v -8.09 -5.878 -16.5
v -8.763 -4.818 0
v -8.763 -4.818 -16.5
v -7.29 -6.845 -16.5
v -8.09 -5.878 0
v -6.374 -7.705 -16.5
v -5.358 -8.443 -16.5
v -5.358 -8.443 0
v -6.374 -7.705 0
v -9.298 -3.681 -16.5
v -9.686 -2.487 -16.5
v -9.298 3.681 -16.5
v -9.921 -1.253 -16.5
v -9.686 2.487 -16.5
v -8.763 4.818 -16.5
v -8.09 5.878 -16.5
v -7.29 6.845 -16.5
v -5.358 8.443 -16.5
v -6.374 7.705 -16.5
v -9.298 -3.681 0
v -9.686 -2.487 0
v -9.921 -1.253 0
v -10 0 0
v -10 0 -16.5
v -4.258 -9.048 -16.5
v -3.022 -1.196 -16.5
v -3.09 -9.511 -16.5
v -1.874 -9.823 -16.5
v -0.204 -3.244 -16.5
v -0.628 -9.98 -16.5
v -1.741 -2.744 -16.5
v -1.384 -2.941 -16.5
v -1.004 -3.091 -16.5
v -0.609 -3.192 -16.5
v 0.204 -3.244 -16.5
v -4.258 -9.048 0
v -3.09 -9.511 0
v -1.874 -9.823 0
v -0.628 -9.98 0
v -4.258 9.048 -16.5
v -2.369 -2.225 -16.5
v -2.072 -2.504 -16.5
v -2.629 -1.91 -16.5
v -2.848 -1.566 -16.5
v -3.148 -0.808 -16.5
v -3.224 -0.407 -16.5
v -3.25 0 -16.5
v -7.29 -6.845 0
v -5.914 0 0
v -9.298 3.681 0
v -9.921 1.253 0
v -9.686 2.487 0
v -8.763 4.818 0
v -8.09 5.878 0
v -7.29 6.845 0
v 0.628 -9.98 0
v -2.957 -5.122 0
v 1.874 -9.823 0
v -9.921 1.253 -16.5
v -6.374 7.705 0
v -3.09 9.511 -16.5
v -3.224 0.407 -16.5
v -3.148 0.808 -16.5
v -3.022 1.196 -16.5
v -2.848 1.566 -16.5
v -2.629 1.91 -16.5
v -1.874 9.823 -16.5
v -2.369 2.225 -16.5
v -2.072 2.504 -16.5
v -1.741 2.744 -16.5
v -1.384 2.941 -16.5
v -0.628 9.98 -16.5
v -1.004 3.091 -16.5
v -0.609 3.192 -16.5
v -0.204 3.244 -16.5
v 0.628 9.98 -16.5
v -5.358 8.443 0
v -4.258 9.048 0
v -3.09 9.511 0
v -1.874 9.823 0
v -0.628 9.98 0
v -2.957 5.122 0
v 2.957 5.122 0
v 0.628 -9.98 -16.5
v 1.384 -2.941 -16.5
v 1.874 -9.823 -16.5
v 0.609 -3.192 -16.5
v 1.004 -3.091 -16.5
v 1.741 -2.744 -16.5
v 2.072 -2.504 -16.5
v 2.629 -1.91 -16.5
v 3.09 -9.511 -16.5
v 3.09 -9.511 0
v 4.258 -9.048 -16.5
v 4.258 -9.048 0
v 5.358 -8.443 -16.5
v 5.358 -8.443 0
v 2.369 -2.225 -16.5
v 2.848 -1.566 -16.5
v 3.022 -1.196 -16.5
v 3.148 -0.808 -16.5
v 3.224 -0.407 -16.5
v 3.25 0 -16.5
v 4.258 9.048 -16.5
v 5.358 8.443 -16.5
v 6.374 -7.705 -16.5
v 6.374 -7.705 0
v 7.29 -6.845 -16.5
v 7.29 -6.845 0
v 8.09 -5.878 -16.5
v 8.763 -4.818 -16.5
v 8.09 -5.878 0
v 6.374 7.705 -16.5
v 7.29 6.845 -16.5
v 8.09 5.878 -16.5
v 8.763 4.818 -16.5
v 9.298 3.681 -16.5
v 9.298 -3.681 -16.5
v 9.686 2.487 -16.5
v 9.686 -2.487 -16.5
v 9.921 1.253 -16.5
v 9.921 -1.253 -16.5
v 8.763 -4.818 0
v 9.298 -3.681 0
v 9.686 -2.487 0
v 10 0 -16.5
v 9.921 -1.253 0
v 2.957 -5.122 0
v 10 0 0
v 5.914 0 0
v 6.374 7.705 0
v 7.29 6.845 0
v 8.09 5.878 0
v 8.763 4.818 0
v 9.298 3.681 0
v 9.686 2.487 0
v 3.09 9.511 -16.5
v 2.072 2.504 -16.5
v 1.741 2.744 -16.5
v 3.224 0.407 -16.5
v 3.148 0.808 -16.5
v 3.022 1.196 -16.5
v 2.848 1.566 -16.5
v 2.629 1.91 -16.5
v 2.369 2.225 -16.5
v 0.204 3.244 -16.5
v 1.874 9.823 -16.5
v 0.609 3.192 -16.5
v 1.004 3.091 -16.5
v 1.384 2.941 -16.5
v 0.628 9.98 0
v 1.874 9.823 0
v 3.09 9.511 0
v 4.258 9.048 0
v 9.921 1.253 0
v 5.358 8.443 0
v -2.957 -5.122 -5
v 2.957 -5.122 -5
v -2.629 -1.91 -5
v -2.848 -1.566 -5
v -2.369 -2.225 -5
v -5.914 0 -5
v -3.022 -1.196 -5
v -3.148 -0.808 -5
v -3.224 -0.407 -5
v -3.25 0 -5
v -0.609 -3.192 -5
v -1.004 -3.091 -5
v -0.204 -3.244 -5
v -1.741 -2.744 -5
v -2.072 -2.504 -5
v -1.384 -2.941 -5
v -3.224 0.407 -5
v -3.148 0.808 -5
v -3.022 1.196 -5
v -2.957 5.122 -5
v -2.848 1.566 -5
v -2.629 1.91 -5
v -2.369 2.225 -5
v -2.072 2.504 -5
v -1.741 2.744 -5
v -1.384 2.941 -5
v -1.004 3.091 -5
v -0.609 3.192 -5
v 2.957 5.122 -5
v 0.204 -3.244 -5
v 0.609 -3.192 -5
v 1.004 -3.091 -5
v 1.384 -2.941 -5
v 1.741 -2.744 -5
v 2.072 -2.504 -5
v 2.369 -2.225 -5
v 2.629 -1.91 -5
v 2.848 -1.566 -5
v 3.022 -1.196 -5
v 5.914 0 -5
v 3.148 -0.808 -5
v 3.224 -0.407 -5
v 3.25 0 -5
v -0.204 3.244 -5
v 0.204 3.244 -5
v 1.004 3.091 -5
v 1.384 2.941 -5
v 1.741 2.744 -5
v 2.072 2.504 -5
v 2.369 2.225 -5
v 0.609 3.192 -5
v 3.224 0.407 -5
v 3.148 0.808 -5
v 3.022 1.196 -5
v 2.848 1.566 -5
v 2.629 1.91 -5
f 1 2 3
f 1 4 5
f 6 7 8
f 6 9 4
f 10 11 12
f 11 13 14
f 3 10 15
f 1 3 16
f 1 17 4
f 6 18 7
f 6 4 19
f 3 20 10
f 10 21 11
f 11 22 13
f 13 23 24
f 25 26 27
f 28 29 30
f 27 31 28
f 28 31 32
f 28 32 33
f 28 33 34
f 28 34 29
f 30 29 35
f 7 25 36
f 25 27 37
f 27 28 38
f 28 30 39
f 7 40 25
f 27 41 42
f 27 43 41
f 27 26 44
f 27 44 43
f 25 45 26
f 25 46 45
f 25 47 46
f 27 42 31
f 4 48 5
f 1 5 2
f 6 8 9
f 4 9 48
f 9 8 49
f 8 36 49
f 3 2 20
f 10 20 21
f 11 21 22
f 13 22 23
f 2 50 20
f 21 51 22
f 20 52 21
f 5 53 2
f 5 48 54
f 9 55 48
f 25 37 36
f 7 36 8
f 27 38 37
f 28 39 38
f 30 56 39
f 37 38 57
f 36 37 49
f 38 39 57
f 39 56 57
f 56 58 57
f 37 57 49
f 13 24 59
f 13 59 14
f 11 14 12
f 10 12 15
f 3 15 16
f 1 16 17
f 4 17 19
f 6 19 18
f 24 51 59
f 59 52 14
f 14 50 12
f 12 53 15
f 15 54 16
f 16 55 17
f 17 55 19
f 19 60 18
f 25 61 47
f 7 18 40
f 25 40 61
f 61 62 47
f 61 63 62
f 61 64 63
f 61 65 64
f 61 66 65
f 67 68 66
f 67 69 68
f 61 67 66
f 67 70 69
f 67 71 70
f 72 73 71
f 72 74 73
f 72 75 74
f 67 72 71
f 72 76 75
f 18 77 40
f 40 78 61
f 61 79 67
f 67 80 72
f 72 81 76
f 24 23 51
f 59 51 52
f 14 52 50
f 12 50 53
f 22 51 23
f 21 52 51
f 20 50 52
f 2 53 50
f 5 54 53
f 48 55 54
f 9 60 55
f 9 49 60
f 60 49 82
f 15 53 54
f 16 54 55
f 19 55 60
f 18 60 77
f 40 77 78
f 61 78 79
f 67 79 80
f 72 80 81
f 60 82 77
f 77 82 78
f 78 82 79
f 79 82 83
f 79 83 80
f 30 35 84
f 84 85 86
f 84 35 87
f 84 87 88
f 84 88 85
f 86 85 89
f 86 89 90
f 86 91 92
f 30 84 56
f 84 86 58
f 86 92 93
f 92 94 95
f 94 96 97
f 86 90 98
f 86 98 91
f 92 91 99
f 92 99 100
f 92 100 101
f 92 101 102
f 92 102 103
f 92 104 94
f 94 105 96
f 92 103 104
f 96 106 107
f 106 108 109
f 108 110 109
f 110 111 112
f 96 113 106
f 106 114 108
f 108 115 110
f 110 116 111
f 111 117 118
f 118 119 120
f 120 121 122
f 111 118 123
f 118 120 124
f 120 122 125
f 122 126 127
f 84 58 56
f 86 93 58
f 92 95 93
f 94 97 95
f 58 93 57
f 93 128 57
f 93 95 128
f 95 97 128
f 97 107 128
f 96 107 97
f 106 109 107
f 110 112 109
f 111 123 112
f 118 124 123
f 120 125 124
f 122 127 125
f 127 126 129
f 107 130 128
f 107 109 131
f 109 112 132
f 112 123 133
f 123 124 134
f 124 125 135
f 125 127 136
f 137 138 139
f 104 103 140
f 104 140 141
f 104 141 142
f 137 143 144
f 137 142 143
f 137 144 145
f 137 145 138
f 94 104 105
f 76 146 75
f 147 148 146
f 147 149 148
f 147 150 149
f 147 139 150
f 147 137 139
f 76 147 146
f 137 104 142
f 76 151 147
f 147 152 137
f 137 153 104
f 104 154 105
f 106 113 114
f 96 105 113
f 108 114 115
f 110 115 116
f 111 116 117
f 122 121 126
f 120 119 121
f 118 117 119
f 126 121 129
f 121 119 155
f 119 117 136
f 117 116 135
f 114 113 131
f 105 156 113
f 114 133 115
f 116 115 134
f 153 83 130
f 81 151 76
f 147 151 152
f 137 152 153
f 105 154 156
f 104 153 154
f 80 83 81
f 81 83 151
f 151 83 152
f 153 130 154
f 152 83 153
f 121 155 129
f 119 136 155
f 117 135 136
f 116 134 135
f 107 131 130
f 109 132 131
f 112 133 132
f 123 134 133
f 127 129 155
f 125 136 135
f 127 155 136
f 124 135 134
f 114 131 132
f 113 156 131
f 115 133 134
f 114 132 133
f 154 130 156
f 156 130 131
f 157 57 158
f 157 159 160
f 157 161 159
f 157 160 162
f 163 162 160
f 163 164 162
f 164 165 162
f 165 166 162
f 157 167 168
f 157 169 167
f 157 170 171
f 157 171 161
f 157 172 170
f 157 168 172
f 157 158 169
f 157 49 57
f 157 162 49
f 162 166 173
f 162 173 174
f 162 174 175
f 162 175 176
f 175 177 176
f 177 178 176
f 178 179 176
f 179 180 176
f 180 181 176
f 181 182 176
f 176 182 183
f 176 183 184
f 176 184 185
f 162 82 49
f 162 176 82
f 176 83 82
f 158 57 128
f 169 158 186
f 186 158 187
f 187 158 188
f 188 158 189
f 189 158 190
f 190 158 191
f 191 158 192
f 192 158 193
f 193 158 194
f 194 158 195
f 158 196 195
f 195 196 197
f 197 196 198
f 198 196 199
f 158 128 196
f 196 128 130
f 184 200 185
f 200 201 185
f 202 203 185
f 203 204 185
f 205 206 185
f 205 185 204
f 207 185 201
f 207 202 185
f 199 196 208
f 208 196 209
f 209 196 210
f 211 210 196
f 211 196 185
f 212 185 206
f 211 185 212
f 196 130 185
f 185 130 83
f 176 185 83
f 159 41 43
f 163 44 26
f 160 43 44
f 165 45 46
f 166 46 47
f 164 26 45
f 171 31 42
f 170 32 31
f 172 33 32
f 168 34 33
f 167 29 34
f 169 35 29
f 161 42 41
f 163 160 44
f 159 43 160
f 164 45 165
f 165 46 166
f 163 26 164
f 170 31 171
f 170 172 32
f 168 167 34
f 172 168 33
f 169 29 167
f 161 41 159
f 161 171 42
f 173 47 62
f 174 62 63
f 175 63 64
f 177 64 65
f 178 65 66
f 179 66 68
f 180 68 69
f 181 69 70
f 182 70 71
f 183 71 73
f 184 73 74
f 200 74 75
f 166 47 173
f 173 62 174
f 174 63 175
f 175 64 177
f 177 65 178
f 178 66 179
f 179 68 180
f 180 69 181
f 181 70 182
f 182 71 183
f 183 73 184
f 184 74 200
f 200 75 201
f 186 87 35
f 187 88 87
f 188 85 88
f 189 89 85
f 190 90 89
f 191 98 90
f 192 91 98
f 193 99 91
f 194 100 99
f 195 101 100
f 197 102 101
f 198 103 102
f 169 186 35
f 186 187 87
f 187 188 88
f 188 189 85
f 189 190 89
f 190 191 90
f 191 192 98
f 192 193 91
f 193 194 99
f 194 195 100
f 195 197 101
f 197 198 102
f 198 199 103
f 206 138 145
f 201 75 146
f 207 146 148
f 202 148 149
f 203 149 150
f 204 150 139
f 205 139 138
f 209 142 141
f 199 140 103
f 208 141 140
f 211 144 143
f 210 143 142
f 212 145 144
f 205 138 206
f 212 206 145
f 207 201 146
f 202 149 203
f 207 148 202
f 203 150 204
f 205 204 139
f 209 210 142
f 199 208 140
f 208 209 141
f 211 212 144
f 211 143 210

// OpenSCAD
$fn = 50;

difference() {
	union() {
		translate(v = [0, 0, -16.5]) {
			cylinder(h = 16.5, r = 10.0);
		}
		#translate(v = [0, 0, -18.0]) {
			cylinder(h = 18, r = 2.875);
		}
	}
	union() {
		translate(v = [0, 0, 0]) {
			rotate(a = [0, 0, 0]) {
				difference() {
					union() {
						translate(v = [0, 0, -5]) {
							linear_extrude(height = 5) {
								polygon(points = [[5.914249999999999, 0.0], [2.957125, 5.1218907443321156], [-2.9571249999999982, 5.1218907443321156], [-5.914249999999999, 7.242867331857232e-16], [-2.9571250000000022, -5.121890744332115], [2.9571249999999956, -5.121890744332118]]);
							}
						}
					}
					union();
				}
			}
		}
		#translate(v = [0, 0, -100.0]) {
			cylinder(h = 200, r = 3.25);
		}
	}
}
